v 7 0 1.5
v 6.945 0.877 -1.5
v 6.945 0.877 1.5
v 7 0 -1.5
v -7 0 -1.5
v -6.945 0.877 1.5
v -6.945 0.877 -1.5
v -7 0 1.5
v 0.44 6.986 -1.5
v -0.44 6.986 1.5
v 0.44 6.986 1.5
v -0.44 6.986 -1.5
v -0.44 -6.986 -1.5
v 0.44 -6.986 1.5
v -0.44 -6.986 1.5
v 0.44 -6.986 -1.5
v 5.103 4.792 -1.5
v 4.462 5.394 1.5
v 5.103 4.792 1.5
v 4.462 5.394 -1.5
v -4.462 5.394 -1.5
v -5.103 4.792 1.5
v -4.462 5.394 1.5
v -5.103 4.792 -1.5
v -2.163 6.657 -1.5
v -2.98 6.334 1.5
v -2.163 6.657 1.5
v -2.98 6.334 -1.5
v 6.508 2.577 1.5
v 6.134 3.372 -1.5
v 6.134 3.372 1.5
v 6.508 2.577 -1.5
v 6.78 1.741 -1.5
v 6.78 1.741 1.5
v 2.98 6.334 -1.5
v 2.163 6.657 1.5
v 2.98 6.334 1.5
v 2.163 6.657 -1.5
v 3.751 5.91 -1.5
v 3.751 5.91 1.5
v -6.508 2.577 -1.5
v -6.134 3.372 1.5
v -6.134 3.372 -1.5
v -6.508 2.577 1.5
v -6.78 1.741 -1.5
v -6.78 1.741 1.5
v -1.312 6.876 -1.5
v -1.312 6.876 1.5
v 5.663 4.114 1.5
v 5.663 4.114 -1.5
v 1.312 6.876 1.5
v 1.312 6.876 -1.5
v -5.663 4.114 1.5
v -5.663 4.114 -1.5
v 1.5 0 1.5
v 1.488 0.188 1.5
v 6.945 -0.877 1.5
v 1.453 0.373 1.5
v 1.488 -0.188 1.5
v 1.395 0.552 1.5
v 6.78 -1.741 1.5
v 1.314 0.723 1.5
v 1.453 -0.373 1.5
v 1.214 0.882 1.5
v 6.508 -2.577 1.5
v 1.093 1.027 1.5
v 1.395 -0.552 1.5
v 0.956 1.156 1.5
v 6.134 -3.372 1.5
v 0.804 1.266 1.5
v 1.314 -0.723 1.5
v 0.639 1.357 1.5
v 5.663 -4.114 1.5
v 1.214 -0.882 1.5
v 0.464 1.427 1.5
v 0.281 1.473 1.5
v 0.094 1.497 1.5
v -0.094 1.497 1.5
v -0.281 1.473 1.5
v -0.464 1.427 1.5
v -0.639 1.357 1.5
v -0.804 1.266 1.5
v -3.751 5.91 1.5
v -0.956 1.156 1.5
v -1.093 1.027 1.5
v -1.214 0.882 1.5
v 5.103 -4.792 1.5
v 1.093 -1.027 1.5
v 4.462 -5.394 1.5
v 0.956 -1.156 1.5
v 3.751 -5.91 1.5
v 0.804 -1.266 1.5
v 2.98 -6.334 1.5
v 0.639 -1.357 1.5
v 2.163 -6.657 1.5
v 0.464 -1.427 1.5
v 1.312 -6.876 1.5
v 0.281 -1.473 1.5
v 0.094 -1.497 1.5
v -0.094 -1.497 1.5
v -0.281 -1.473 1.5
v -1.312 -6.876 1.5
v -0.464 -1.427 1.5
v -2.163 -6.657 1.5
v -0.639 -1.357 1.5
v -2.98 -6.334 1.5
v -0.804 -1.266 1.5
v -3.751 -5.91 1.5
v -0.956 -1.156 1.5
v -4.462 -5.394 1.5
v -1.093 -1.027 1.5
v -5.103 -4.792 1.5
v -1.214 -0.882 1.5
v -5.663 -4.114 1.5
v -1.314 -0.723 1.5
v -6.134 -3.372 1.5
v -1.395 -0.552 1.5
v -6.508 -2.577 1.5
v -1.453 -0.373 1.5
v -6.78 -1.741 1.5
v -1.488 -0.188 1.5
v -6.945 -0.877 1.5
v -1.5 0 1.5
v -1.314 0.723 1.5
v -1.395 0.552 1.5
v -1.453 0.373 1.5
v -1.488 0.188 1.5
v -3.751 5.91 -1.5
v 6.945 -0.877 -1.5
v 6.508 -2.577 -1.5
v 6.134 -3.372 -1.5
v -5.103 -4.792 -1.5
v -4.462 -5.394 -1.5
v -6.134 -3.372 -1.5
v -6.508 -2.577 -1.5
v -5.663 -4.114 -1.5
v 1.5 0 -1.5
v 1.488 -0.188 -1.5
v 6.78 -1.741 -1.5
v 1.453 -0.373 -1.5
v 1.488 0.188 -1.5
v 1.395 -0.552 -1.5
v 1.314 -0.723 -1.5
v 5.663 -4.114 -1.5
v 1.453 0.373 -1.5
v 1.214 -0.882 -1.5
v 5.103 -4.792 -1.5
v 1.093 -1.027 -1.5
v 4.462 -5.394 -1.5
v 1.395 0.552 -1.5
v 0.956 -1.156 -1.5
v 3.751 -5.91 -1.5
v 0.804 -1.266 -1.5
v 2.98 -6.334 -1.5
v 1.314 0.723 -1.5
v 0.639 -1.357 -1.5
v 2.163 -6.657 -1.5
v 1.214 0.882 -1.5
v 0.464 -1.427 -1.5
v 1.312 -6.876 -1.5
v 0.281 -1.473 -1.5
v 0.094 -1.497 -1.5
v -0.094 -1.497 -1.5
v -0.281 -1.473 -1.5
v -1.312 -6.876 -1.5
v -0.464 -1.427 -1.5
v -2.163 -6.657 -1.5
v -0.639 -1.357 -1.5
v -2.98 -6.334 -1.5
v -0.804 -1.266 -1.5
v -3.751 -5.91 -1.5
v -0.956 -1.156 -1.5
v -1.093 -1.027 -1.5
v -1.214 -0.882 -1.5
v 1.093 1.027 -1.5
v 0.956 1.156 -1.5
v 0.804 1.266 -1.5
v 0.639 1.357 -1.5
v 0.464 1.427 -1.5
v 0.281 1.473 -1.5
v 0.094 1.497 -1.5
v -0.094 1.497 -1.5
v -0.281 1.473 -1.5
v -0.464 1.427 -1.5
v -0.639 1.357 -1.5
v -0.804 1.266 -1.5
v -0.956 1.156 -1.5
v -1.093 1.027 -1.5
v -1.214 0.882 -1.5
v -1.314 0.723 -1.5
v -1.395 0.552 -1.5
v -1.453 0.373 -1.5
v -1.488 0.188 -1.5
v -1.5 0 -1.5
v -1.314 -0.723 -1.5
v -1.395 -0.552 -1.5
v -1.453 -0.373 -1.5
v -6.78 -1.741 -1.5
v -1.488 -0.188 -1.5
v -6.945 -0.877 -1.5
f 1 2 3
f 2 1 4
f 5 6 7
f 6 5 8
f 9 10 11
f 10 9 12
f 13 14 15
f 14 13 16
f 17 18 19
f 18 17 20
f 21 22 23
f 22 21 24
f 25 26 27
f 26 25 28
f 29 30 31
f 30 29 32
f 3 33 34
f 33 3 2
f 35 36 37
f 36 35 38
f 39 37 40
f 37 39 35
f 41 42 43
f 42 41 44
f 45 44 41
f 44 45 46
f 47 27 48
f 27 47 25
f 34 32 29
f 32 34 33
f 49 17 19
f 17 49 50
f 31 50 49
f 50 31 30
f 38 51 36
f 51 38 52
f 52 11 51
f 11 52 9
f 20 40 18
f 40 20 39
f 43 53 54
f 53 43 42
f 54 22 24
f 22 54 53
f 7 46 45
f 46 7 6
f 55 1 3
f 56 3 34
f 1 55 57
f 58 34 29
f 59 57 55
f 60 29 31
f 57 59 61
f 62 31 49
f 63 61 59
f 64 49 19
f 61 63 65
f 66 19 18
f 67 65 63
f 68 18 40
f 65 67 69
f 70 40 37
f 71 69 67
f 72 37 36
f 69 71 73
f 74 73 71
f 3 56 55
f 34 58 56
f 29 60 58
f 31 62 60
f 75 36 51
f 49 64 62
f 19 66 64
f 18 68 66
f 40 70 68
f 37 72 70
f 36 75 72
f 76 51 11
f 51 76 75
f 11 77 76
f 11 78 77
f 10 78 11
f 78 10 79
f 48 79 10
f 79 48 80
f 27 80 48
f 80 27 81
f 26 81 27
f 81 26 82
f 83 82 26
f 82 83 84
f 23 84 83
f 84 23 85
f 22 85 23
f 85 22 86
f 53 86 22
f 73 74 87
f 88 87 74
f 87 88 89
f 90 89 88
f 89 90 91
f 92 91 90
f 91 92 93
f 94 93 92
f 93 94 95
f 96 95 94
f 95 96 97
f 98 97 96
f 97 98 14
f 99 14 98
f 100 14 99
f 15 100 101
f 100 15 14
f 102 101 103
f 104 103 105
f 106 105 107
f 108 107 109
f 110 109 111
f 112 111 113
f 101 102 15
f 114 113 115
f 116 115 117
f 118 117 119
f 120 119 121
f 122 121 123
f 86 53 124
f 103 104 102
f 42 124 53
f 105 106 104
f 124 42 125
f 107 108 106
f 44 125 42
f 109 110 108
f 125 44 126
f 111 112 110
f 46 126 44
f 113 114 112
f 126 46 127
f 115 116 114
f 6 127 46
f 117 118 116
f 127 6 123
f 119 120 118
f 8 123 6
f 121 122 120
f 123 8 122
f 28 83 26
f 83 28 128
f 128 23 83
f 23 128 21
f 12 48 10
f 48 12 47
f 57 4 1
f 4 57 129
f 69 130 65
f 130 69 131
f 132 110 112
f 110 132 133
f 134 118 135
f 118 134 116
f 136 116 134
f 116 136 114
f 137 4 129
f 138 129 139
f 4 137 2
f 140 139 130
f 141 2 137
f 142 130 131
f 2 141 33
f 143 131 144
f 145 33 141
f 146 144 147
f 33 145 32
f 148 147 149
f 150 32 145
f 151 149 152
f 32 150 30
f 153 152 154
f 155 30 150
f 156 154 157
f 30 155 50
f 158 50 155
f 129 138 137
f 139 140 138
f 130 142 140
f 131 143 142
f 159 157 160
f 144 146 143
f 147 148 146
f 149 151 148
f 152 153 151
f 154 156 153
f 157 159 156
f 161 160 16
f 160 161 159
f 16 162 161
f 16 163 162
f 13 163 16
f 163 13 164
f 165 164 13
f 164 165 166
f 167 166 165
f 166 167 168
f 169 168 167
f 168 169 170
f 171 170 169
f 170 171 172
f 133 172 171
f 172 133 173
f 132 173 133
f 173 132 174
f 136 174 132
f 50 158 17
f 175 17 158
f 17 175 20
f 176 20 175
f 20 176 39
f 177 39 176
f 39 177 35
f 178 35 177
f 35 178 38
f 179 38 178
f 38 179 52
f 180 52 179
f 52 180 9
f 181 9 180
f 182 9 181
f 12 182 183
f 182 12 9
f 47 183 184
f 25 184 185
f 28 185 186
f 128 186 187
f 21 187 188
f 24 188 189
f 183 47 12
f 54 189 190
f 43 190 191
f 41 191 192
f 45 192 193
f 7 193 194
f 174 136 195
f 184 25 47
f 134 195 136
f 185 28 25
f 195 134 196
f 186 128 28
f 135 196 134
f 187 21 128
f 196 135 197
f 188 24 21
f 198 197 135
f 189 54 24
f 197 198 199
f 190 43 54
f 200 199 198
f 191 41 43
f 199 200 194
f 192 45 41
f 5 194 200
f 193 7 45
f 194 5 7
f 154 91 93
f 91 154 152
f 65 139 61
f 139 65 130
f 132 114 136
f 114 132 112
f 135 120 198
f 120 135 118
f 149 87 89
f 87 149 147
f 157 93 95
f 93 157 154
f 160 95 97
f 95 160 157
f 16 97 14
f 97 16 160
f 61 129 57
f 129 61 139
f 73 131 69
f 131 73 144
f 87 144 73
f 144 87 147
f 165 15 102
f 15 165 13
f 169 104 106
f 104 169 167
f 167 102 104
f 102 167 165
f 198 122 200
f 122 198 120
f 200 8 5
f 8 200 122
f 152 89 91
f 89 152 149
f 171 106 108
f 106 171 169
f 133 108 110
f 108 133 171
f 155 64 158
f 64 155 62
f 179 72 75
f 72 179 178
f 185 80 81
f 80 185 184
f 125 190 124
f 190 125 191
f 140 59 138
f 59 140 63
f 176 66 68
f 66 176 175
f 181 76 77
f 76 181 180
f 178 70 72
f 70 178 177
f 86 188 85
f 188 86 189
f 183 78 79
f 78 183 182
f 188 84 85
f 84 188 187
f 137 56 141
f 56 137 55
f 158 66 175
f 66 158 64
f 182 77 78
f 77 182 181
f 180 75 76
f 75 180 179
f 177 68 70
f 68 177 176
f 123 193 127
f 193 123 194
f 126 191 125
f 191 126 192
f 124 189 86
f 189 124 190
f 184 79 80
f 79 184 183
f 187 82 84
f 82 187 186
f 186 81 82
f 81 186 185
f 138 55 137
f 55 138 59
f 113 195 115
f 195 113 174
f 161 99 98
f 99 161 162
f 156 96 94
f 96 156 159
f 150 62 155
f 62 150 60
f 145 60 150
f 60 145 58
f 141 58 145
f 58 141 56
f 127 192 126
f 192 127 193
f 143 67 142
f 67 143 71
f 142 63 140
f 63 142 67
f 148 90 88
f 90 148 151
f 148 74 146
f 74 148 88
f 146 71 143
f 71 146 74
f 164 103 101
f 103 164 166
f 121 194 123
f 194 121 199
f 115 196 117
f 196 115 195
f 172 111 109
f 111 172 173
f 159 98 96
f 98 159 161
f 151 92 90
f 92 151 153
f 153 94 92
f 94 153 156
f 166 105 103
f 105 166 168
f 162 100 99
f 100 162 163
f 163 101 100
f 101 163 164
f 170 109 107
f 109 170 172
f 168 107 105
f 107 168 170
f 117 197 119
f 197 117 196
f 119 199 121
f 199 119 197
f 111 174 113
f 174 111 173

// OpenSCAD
$fn = 50;


difference() {
	union() {
		translate(v = [0, 0, -1.5000000000]) {
			rotate(a = [0, 0, 0]) {
				cylinder(h = 3, r = 7.0000000000);
			}
		}
		translate(v = [0, 0, -1.5000000000]) {
			rotate(a = [0, 0, 0]) {
				cylinder(h = 3, r = 3.0000000000);
			}
		}
	}
	union() {
		translate(v = [0, 0, -125.0000000000]) {
			rotate(a = [0, 0, 0]) {
				cylinder(h = 250, r = 1.5000000000);
			}
		}
	}
}
